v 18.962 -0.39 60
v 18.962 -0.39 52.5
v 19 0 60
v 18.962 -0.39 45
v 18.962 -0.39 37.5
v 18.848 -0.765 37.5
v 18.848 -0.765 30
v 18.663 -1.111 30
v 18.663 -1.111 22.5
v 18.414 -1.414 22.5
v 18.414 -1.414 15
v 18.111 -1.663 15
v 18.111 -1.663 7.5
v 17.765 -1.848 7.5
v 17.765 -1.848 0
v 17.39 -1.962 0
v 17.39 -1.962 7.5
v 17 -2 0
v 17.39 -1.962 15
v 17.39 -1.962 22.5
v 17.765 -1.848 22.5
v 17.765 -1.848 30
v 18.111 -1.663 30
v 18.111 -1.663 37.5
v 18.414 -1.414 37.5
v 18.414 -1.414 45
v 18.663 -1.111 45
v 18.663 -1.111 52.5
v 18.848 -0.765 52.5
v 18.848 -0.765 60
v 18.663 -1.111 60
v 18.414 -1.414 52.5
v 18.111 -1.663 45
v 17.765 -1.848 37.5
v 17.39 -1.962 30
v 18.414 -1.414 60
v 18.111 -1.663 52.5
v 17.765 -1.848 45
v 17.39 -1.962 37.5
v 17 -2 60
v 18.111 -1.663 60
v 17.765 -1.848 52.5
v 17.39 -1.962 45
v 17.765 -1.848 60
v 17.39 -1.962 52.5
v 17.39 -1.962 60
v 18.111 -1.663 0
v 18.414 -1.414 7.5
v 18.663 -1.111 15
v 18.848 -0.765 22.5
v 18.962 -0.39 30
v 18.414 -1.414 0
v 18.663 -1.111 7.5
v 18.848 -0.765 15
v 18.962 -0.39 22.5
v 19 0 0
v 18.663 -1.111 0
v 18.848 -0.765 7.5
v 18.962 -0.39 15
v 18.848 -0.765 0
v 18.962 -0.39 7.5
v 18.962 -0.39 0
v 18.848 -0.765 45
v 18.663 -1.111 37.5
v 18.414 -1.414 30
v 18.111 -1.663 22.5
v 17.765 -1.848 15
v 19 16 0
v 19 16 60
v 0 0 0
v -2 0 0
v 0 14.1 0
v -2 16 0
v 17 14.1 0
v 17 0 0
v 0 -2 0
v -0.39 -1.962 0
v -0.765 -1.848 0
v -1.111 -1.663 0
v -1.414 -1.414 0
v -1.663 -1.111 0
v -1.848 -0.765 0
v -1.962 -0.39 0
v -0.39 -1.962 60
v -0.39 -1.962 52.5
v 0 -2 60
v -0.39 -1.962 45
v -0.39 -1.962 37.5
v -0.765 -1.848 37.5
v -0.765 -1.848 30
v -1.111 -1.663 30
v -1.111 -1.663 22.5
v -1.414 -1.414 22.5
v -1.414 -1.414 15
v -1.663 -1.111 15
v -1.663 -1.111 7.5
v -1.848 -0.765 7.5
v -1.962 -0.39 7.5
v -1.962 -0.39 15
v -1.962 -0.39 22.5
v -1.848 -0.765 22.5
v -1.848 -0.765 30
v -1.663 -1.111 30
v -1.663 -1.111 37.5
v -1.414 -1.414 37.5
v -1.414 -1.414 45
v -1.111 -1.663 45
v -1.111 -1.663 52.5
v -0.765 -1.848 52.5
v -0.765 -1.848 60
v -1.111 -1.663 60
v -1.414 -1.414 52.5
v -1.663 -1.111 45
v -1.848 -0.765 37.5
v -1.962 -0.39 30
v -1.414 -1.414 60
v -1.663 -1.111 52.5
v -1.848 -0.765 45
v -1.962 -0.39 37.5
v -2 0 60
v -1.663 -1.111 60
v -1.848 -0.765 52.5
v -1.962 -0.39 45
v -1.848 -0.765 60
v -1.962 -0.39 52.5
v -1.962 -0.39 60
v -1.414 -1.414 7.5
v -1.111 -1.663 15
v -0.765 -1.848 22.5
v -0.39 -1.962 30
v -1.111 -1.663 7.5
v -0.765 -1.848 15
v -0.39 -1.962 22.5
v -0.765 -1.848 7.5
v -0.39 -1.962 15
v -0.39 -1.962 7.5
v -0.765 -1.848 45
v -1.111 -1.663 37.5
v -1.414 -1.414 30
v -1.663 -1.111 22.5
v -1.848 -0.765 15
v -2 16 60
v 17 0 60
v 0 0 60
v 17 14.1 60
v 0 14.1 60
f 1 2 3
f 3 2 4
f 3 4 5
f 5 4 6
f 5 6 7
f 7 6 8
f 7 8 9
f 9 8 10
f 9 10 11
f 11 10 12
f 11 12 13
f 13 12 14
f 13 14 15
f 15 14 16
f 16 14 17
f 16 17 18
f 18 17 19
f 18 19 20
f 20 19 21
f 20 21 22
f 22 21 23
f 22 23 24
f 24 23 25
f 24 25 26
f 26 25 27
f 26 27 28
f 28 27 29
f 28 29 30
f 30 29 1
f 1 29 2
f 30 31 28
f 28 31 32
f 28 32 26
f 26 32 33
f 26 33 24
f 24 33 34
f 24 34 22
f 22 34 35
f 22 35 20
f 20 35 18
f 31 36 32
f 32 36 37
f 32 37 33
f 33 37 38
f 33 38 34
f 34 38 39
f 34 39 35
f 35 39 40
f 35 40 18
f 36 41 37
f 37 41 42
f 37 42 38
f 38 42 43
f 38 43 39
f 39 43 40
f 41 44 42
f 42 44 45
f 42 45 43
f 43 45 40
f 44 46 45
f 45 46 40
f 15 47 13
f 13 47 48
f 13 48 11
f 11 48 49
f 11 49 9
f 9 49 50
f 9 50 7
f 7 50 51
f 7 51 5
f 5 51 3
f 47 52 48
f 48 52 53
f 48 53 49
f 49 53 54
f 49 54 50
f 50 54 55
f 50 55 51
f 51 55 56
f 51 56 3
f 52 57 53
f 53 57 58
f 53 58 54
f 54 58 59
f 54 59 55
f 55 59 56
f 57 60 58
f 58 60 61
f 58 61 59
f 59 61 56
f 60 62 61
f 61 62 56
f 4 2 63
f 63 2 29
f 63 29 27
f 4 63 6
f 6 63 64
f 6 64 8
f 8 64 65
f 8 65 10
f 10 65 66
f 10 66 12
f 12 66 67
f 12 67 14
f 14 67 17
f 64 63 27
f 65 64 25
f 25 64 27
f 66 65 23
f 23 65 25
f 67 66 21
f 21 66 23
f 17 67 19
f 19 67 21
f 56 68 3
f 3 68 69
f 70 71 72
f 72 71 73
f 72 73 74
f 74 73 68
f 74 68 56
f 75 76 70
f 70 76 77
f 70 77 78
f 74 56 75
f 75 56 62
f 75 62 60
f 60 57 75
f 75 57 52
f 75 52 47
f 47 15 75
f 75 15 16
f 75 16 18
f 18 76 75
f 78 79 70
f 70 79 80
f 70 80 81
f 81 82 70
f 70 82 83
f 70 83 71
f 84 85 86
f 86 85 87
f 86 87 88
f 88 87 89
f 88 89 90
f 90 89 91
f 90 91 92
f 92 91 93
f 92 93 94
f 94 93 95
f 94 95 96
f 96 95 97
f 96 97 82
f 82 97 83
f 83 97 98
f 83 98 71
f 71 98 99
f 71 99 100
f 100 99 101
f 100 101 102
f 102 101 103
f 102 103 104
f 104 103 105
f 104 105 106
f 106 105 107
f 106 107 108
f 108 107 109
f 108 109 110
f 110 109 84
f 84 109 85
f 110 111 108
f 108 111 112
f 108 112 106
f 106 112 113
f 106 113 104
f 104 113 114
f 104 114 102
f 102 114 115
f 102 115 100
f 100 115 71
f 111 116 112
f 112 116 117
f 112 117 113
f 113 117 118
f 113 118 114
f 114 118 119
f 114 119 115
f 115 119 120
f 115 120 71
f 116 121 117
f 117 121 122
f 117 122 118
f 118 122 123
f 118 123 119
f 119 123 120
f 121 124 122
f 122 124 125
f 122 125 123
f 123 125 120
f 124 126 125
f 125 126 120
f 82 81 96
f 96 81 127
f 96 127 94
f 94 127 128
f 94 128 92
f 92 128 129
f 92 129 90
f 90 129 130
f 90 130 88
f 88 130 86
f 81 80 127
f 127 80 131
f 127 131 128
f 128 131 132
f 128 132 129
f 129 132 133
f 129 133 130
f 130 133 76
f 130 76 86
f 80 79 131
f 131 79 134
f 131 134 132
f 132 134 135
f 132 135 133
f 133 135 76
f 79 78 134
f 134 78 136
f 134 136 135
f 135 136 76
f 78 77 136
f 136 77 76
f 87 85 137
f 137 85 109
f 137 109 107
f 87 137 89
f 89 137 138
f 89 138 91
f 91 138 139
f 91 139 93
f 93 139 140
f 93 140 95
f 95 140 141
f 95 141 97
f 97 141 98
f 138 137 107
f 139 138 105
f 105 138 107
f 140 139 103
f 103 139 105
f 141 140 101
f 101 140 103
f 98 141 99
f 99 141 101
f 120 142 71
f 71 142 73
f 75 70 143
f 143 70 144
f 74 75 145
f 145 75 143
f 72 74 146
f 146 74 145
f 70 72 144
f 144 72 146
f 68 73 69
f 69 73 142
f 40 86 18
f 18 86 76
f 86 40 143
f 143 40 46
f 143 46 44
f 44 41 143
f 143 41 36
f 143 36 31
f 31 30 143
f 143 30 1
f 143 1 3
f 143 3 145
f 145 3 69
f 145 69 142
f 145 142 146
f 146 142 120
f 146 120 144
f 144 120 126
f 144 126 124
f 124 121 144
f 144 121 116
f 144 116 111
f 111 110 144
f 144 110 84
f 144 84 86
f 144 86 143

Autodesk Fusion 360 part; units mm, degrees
sketch "Sketch1" plane through (0, 0, 0) normal (0, 0, 1) x (1, 0, 0)
  line L0 (0, 0) -> (17, 0)
  line L1 (17, 0) -> (17, 14.1)
  line L2 (17, 14.1) -> (0, 14.1)
  line L3 (0, 14.1) -> (0, 0)
  line L4 (-2, -2) -> (19, -2)
  line L5 (19, -2) -> (19, 16)
  line L6 (19, 16) -> (-2, 16)
  line L7 (-2, 16) -> (-2, -2)
  dimension "d1" = 17
  dimension "d2" = 14.1
extrude "Extrude1" add sketch "Sketch1" along normal blind 60
fillet "Fillet1" radius 2 2 edges at (-2, -2, 30) (19, -2, 30)
